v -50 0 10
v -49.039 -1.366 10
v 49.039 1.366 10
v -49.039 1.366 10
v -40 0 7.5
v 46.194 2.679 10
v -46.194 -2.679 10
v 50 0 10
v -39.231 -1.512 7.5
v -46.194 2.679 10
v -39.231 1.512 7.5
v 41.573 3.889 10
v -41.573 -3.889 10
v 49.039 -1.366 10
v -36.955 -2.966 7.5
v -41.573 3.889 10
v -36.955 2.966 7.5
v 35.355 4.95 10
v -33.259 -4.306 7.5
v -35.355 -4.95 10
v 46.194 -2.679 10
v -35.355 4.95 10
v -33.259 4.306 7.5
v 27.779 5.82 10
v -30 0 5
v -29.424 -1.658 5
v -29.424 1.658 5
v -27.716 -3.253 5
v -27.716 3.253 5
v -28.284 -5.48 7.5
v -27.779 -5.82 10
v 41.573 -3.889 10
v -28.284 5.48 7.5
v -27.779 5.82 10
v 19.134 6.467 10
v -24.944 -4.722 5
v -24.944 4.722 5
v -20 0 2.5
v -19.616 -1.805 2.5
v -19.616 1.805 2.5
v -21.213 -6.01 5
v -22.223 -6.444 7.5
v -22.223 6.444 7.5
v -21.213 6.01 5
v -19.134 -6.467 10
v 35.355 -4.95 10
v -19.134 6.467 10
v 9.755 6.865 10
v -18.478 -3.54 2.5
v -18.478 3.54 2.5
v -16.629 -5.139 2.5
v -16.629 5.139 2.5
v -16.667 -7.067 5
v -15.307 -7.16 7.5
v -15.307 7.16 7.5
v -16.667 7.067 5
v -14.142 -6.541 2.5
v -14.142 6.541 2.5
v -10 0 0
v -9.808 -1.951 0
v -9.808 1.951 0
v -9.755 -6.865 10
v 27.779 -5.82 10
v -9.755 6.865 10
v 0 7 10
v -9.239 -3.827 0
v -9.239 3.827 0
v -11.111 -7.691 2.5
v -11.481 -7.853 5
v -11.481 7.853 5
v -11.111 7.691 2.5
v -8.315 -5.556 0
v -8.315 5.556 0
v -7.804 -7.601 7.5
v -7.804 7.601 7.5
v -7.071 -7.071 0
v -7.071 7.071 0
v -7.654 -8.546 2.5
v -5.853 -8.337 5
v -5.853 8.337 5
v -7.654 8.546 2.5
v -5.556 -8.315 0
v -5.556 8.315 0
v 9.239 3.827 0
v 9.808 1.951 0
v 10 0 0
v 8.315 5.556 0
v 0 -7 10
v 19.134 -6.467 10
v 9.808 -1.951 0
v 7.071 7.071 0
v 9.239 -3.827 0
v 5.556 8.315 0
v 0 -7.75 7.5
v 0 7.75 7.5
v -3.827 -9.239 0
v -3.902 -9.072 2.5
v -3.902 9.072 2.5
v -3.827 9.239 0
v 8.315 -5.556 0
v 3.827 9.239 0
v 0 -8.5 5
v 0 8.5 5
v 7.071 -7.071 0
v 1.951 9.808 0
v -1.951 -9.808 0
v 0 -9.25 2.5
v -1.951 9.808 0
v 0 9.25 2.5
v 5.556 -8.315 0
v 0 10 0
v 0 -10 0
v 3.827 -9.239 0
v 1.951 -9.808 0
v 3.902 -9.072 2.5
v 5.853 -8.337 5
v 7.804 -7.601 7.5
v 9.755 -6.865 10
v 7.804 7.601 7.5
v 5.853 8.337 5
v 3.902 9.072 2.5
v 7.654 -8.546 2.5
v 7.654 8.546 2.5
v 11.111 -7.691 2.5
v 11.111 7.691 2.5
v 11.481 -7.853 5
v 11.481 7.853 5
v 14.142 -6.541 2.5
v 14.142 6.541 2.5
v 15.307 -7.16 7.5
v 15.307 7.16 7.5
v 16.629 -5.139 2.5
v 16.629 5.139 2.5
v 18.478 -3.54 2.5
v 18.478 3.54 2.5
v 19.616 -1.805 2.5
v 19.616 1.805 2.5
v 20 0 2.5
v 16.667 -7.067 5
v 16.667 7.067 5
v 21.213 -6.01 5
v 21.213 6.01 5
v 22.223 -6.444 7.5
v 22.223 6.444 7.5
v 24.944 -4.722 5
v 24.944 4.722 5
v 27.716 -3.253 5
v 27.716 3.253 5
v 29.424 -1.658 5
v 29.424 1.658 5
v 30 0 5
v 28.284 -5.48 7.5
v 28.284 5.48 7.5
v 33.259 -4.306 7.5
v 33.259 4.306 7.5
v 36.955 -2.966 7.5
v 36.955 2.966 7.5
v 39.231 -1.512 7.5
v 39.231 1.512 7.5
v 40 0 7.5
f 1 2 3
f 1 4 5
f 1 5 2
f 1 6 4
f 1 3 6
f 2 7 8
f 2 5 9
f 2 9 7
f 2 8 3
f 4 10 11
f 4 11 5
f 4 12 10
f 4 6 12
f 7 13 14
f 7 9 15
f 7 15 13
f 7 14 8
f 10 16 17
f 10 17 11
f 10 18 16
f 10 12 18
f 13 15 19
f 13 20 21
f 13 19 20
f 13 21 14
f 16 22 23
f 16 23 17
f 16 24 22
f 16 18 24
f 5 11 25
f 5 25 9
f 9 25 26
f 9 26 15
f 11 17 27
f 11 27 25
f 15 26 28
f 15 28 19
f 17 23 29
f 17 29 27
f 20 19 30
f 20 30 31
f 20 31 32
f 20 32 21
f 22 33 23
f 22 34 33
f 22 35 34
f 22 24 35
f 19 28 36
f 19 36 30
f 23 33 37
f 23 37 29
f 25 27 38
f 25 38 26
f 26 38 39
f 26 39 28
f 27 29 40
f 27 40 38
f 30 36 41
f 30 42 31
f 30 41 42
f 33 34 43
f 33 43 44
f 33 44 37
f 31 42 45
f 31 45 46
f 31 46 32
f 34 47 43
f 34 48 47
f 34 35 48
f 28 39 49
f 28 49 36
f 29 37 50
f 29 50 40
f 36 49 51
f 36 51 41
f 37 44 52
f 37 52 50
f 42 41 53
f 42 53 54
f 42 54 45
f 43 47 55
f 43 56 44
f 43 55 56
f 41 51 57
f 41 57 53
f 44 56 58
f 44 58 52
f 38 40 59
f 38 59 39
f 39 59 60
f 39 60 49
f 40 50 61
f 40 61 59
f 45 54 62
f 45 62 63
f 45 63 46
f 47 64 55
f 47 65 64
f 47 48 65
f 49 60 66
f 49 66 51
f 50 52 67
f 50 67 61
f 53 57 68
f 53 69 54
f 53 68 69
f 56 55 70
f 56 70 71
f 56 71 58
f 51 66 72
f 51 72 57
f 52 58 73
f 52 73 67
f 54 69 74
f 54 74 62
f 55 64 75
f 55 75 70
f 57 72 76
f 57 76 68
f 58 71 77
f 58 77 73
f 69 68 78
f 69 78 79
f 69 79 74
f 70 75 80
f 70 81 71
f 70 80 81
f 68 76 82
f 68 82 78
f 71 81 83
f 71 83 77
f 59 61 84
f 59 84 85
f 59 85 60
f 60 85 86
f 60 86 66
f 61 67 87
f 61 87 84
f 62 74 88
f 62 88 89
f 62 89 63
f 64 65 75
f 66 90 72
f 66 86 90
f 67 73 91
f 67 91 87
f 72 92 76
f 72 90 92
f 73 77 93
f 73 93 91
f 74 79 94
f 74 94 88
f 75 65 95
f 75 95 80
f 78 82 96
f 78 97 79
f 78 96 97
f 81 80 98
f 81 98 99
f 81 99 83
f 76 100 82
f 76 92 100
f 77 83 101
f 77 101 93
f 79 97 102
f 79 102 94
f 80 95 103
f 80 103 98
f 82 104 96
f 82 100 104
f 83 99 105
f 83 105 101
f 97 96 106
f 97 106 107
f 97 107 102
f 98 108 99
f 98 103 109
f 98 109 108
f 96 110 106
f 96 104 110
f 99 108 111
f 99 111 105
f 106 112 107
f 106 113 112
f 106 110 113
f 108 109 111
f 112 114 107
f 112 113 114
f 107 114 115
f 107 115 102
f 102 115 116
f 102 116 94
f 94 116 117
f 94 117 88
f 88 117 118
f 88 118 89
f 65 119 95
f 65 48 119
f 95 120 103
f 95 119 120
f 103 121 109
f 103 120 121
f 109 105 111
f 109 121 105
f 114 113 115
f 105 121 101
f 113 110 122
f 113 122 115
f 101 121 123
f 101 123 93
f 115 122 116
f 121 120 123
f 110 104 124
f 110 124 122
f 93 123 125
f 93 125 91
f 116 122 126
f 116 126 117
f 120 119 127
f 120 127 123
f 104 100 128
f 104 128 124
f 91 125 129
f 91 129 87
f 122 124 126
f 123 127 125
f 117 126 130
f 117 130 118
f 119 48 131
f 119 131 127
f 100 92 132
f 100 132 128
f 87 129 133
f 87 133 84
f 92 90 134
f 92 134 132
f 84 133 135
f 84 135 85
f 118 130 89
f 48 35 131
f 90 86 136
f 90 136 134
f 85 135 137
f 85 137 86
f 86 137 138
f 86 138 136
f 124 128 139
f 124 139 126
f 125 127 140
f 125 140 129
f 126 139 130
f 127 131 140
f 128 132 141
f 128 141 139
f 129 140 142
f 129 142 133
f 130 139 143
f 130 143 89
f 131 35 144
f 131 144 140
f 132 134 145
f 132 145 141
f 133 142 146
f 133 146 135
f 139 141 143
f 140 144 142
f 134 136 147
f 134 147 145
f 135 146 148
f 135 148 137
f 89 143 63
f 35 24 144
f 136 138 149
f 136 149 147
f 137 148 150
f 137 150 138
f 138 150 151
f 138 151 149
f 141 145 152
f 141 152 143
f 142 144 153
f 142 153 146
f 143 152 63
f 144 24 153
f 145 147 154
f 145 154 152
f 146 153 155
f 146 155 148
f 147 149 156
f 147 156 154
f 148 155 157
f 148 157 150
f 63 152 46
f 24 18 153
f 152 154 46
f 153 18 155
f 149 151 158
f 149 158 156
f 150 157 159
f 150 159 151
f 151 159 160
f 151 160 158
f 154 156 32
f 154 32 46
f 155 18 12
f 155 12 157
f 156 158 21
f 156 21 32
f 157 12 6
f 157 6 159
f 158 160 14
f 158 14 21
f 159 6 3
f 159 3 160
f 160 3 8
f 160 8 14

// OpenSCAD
// Start: lazy_union
default_5_default_5();
// End: lazy_union

// Modules.

// 'PartMaterial undef-default - default 5.0'
module default_5_default_5() {
  // 'None : _combine_solids_and_holes'
  union() {
    // 'default : _combine_solids_and_holes'
    union() {
      // 'eliptic_cone : _combine_solids_and_holes'
      union() {
        // 'eliptic_cone'
        linear_extrude(height=10.0, twist=0.0, slices=4, scale=[5.0, 0.7], $fn=32) {
          polygon(points=[[0.0, 10.0], [1.9509032201612833, 9.807852804032304], [3.8268343236508984, 9.238795325112868], [5.555702330196023, 8.314696123025453], [7.0710678118654755, 7.0710678118654755], [8.314696123025453, 5.555702330196022], [9.238795325112868, 3.826834323650898], [9.807852804032304, 1.9509032201612824], [10.0, 0.0], [9.807852804032304, -1.9509032201612824], [9.238795325112868, -3.826834323650898], [8.314696123025453, -5.55570233019602], [7.0710678118654755, -7.0710678118654755], [5.555702330196021, -8.314696123025453], [3.8268343236508984, -9.238795325112868], [1.9509032201612853, -9.807852804032304], [6.123233995736766e-16, -10.0], [-1.9509032201612841, -9.807852804032304], [-3.826834323650897, -9.238795325112868], [-5.55570233019602, -8.314696123025453], [-7.071067811865475, -7.0710678118654755], [-8.314696123025453, -5.555702330196022], [-9.238795325112864, -3.826834323650903], [-9.807852804032304, -1.9509032201612861], [-10.0, -1.2246467991473533e-15], [-9.807852804032304, 1.9509032201612837], [-9.238795325112866, 3.8268343236509006], [-8.314696123025454, 5.55570233019602], [-7.071067811865477, 7.071067811865475], [-5.555702330196022, 8.314696123025453], [-3.8268343236509033, 9.238795325112864], [-1.9509032201612866, 9.807852804032303]]);
        }
      }
    }
  }
} // end module default_5_default_5
